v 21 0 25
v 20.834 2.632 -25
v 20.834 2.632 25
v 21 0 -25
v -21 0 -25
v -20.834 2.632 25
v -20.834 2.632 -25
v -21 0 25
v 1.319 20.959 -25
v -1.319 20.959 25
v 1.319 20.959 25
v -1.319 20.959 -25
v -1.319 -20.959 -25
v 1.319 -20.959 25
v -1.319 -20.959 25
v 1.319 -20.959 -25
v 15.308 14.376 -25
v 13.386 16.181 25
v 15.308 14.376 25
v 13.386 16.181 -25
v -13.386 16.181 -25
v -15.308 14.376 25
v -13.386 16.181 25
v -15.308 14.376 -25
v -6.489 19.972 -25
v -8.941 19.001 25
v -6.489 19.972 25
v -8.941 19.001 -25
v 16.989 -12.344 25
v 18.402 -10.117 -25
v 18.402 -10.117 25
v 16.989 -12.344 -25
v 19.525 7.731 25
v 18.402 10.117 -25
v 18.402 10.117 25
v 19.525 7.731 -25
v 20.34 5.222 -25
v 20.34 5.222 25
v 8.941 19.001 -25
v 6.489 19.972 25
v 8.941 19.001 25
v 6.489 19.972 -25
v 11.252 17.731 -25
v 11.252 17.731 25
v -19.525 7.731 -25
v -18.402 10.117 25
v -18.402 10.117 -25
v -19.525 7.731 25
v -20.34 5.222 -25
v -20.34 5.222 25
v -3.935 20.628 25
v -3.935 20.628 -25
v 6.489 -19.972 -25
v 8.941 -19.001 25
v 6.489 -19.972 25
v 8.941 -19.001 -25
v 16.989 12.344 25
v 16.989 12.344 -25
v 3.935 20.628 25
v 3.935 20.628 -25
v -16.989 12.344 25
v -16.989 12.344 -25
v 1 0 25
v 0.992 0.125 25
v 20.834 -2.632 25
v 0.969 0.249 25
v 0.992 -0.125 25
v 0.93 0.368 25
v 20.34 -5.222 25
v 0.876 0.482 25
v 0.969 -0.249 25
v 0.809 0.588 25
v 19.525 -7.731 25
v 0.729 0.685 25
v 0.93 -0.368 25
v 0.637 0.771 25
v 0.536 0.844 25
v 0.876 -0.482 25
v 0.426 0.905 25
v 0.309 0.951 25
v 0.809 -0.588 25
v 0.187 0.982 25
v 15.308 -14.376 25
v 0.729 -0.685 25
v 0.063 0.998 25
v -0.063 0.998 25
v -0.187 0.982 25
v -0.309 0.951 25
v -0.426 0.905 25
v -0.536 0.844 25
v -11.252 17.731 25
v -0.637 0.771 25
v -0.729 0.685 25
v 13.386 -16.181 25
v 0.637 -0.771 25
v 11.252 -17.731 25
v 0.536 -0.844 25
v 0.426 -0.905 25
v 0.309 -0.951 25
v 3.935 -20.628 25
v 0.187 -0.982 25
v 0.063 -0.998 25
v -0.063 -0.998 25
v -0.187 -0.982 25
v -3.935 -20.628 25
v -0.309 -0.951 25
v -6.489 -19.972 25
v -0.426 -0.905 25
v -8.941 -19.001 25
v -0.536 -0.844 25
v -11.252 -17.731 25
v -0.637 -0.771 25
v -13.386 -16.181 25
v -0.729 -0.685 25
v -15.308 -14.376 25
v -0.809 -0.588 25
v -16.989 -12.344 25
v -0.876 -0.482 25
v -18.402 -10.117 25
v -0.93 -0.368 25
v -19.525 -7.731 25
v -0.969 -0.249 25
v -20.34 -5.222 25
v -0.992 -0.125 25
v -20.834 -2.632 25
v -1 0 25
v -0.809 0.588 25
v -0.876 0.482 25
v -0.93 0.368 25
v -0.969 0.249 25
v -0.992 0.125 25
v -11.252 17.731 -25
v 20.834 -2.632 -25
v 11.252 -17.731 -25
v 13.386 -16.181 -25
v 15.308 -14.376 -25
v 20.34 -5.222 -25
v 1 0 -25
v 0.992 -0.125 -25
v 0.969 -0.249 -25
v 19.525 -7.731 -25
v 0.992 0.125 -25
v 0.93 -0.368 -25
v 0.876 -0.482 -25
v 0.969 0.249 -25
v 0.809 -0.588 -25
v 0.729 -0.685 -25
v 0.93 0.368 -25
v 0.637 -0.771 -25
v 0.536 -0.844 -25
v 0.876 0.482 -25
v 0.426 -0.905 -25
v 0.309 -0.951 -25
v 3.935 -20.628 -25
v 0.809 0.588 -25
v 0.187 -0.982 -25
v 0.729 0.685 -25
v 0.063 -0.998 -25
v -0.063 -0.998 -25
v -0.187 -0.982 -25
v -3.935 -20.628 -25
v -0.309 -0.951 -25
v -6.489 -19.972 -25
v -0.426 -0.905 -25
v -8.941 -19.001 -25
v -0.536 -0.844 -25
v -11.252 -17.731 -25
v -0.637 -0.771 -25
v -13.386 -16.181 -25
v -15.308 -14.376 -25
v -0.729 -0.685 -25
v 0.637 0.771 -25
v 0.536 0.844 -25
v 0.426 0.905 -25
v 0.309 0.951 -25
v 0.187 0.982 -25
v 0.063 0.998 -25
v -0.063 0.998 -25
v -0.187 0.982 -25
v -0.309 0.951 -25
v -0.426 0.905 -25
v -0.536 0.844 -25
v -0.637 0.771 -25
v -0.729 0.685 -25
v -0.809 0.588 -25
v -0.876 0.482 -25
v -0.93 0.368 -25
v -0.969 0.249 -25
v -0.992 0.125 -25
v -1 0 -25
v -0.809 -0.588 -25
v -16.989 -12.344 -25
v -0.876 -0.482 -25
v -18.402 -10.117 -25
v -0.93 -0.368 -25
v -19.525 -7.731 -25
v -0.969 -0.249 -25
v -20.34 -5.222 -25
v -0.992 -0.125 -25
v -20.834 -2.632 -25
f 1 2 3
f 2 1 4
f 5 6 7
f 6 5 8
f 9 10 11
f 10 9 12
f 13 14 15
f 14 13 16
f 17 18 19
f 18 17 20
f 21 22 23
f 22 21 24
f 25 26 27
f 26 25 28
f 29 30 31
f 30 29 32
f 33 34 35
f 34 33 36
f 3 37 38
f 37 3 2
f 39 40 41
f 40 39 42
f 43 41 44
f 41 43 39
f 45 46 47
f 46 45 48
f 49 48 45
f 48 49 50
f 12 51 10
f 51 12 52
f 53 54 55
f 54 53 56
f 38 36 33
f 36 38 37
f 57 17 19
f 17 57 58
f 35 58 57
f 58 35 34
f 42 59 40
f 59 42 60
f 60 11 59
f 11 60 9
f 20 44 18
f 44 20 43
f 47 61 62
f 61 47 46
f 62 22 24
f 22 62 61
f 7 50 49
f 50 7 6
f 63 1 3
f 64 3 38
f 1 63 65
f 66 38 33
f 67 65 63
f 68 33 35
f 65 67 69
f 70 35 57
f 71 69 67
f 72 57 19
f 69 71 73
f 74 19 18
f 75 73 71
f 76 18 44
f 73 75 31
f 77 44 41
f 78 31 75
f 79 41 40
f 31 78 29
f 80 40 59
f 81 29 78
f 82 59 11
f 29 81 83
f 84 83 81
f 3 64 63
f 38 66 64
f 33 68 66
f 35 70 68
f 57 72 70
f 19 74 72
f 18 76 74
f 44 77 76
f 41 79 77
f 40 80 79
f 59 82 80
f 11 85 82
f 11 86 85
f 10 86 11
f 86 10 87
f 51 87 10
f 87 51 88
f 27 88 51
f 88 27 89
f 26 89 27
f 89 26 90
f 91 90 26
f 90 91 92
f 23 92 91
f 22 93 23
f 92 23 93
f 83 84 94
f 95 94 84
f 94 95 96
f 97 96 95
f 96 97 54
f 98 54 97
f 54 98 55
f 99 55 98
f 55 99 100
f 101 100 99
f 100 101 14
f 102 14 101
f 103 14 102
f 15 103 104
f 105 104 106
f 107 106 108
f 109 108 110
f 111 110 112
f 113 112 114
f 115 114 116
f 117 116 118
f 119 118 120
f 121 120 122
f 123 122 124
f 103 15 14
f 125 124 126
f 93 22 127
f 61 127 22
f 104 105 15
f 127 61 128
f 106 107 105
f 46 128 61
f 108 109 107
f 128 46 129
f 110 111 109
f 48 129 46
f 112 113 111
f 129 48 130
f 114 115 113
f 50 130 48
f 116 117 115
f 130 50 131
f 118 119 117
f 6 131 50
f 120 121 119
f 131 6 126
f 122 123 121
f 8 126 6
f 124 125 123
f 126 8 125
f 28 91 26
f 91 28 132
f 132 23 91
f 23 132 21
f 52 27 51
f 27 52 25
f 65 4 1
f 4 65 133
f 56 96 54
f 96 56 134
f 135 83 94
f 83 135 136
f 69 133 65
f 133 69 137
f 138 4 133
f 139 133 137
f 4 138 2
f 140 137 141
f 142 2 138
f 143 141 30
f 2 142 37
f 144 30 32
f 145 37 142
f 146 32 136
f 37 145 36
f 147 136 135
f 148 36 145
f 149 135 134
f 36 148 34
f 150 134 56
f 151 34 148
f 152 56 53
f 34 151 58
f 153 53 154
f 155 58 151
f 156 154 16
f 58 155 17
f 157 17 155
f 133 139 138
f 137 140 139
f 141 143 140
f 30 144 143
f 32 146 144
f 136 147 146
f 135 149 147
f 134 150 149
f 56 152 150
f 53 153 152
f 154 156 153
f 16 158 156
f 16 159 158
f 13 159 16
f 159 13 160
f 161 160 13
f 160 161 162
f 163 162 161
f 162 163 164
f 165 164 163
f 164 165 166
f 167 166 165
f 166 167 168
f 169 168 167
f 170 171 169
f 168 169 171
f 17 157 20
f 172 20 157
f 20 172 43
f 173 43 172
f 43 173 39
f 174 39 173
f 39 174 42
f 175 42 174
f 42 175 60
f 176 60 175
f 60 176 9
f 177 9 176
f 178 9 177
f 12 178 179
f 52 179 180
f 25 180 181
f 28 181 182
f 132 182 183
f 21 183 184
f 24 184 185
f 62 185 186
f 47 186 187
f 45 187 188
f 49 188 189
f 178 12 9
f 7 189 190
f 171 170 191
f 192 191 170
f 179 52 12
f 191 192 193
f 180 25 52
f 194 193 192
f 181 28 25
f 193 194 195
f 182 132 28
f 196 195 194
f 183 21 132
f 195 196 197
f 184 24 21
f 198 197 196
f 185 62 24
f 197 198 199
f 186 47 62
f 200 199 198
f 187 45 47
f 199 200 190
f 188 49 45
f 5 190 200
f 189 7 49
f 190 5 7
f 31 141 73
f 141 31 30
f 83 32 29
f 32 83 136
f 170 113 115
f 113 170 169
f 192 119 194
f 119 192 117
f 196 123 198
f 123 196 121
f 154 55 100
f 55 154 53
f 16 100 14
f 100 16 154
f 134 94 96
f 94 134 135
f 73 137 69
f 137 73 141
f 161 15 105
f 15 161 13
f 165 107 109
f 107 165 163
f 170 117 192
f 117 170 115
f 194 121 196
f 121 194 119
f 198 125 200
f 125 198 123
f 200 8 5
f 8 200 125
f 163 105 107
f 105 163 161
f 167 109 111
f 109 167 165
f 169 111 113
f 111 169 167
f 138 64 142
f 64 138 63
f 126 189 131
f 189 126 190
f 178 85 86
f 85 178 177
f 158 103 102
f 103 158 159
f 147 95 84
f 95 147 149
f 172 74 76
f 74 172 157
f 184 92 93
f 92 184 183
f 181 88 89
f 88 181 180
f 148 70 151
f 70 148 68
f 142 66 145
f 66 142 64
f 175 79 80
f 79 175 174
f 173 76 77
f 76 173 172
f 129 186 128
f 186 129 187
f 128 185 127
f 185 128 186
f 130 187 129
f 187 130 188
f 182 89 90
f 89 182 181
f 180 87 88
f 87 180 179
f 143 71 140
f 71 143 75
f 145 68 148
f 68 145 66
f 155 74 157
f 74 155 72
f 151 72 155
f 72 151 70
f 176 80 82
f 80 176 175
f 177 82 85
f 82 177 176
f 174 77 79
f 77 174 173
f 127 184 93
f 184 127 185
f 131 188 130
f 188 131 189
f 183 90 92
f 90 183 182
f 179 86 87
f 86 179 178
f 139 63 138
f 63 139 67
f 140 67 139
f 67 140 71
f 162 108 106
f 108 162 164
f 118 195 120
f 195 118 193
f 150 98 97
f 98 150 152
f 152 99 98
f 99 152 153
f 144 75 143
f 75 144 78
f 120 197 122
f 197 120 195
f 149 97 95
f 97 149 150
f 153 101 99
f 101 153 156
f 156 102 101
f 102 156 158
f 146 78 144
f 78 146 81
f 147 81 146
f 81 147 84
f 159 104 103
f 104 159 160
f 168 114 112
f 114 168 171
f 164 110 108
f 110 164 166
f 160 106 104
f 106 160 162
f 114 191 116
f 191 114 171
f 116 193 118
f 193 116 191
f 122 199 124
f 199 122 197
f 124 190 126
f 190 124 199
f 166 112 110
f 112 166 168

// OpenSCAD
$fn = 50;


difference() {
	union() {
		translate(v = [0, 0, -25.0000000000]) {
			cylinder(h = 50, r = 21.0000000000);
		}
	}
	union() {
		translate(v = [0, 0, -100.0000000000]) {
			cylinder(h = 200, r = 1.0000000000);
		}
	}
}
